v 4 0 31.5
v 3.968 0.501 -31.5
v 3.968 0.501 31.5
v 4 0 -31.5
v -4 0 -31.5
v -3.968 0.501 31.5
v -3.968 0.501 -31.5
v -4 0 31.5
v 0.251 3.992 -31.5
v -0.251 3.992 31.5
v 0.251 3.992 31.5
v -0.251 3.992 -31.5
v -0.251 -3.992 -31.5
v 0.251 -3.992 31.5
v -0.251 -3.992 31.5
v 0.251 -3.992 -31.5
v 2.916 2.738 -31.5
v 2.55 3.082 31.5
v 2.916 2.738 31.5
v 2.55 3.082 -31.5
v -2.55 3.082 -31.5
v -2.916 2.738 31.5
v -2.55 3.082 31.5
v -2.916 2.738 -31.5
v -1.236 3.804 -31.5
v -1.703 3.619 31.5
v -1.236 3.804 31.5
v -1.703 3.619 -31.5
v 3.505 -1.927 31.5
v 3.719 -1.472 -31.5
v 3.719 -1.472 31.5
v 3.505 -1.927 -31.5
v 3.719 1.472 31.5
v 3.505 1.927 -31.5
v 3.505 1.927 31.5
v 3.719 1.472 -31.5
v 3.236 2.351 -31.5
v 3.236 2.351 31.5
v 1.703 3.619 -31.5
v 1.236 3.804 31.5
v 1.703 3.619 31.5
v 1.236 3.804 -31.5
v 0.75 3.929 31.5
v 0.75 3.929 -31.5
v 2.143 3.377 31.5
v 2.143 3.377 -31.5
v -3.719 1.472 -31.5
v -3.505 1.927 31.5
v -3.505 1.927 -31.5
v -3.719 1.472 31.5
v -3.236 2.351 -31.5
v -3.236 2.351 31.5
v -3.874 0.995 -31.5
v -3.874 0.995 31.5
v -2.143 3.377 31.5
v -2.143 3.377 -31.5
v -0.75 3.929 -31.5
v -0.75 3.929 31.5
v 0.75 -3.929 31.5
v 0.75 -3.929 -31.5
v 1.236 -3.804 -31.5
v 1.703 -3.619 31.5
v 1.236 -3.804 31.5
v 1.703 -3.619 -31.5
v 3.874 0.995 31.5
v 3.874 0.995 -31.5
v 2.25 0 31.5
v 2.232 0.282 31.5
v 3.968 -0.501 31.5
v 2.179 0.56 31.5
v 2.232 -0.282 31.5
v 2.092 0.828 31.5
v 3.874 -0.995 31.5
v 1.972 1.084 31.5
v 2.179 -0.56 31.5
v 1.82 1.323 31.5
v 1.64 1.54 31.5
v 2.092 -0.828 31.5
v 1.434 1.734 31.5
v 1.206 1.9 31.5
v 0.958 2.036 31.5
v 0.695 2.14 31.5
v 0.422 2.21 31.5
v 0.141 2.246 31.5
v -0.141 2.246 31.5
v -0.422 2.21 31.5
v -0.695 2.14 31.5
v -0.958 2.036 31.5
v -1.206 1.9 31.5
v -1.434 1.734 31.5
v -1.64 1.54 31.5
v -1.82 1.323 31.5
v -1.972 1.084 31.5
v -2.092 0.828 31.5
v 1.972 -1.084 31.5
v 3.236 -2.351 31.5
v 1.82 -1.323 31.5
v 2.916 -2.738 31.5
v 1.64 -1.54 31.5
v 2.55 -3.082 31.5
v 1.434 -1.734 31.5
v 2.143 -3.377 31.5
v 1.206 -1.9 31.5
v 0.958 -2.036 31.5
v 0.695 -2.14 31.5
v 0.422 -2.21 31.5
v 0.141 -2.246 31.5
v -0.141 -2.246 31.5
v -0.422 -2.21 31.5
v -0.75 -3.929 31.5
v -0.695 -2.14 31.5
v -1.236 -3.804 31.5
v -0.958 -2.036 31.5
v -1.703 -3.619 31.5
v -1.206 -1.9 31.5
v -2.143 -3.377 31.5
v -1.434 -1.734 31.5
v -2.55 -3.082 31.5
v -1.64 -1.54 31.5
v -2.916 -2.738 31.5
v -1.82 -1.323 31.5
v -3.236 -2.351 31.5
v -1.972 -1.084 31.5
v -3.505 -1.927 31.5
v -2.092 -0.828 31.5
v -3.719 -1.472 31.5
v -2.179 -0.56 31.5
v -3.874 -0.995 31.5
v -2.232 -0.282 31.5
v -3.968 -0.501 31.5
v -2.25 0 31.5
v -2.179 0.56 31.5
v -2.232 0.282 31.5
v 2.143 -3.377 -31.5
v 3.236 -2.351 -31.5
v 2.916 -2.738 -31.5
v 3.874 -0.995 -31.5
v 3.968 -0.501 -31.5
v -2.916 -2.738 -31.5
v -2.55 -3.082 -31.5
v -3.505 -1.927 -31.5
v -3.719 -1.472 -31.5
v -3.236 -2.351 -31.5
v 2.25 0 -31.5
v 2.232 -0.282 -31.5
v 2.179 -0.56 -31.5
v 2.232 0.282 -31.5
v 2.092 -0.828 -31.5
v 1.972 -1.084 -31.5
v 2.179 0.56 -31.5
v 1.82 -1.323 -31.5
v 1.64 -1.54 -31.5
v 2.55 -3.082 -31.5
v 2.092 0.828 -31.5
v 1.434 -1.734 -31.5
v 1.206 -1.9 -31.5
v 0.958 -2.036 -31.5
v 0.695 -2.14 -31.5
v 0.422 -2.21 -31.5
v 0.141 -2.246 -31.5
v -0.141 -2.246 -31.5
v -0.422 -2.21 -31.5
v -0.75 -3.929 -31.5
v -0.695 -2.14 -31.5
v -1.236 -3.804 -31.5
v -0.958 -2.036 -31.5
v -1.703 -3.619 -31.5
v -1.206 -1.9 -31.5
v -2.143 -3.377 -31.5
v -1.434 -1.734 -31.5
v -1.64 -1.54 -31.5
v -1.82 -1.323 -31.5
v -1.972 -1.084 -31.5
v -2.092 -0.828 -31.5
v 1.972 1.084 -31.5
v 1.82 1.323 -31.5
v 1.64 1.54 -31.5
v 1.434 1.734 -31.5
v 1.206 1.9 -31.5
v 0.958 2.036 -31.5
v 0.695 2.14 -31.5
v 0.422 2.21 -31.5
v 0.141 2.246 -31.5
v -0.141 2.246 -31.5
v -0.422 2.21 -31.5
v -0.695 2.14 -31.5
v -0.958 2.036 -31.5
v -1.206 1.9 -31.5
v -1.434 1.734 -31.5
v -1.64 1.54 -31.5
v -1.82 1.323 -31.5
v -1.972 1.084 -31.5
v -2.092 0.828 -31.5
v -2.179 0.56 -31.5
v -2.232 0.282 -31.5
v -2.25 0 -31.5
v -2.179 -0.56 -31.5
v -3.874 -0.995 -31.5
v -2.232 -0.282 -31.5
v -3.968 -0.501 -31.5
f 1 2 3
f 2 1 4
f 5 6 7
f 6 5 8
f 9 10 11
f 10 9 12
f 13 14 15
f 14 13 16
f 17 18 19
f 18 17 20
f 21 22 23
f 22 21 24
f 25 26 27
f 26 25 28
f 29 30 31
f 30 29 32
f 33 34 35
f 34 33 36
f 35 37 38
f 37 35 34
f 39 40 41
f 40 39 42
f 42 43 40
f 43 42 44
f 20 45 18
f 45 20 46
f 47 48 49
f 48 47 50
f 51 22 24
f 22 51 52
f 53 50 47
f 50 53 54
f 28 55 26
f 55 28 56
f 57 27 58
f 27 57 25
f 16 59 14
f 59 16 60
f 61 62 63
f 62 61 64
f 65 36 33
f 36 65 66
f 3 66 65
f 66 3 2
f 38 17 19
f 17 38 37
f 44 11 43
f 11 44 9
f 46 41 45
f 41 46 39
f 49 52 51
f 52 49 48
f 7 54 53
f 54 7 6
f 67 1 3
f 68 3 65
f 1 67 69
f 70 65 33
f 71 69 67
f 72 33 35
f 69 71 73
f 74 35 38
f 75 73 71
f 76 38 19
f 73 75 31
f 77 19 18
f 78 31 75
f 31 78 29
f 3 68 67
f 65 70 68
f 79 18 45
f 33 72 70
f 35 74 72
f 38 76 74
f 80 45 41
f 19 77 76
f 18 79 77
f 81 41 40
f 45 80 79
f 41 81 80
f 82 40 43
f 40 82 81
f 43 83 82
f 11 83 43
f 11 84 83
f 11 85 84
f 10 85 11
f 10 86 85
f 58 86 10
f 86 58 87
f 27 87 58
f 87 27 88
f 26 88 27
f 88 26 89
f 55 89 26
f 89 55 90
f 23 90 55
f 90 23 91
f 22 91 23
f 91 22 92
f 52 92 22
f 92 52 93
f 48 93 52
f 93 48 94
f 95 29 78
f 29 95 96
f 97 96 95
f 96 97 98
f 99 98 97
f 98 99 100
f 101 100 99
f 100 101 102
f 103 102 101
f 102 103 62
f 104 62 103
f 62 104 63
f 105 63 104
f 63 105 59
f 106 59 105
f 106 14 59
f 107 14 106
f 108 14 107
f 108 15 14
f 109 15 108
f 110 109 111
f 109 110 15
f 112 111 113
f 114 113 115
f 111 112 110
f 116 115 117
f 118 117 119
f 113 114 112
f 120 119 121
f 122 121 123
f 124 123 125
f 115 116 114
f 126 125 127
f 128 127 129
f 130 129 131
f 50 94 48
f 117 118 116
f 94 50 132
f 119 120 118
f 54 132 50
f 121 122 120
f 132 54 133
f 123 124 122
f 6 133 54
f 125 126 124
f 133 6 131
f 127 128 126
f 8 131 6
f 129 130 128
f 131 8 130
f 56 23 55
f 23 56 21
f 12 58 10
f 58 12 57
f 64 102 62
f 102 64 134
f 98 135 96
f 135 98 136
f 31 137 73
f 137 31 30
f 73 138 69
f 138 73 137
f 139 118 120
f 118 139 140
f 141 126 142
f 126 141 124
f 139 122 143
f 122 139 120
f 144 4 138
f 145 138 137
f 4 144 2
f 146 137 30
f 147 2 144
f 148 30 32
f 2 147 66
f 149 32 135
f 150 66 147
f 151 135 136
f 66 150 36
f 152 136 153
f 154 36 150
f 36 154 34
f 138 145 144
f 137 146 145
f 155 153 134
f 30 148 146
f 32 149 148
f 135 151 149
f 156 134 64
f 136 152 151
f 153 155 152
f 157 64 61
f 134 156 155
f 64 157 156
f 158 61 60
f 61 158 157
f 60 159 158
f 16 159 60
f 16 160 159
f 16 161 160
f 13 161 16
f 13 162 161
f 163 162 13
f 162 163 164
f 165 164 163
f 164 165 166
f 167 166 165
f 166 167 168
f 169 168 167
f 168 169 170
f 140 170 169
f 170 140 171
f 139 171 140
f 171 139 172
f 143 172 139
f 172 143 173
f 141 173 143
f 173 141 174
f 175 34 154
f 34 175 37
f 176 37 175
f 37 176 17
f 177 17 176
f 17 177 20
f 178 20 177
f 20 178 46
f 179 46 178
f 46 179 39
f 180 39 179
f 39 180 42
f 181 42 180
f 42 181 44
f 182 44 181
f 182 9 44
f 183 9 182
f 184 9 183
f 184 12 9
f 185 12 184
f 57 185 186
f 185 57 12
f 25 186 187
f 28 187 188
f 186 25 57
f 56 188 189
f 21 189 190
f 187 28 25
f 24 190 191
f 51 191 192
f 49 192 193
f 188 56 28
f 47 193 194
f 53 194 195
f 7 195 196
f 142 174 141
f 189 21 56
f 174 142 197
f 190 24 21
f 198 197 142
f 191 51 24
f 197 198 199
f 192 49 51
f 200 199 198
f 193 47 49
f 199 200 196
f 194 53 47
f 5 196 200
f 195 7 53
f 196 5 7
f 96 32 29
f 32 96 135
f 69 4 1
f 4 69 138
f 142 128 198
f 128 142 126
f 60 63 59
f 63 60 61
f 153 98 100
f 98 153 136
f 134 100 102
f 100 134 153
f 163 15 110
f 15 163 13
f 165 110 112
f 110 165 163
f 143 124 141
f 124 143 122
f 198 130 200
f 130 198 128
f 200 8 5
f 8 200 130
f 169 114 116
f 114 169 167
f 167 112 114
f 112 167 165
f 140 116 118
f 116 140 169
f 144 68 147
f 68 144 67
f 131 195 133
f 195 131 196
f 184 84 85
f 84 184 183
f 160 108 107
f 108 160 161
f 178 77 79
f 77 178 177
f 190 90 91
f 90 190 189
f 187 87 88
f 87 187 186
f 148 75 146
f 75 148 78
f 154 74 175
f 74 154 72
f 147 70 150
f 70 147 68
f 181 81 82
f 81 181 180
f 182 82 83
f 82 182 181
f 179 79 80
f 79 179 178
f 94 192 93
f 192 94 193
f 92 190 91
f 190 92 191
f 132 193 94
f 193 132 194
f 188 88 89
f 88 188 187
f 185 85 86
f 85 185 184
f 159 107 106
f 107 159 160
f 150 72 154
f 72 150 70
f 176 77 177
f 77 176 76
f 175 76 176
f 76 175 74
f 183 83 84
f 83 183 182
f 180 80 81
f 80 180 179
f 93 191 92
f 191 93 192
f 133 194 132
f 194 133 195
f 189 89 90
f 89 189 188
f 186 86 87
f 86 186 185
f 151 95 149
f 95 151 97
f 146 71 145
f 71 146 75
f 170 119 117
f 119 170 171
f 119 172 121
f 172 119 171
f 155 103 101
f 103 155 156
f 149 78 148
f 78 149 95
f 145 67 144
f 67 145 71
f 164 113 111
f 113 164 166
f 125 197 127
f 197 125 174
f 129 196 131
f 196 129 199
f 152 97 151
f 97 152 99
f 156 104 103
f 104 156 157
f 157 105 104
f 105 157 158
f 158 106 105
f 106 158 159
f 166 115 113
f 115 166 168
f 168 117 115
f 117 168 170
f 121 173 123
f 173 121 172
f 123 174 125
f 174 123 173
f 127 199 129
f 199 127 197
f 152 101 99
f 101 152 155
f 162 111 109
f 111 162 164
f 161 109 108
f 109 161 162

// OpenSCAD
$fn = 50;


difference() {
	union() {
		translate(v = [0, 0, -31.5000000000]) {
			cylinder(h = 63, r = 4.0000000000);
		}
	}
	union() {
		translate(v = [0, 0, -100.0000000000]) {
			cylinder(h = 200, r = 2.2500000000);
		}
	}
}
